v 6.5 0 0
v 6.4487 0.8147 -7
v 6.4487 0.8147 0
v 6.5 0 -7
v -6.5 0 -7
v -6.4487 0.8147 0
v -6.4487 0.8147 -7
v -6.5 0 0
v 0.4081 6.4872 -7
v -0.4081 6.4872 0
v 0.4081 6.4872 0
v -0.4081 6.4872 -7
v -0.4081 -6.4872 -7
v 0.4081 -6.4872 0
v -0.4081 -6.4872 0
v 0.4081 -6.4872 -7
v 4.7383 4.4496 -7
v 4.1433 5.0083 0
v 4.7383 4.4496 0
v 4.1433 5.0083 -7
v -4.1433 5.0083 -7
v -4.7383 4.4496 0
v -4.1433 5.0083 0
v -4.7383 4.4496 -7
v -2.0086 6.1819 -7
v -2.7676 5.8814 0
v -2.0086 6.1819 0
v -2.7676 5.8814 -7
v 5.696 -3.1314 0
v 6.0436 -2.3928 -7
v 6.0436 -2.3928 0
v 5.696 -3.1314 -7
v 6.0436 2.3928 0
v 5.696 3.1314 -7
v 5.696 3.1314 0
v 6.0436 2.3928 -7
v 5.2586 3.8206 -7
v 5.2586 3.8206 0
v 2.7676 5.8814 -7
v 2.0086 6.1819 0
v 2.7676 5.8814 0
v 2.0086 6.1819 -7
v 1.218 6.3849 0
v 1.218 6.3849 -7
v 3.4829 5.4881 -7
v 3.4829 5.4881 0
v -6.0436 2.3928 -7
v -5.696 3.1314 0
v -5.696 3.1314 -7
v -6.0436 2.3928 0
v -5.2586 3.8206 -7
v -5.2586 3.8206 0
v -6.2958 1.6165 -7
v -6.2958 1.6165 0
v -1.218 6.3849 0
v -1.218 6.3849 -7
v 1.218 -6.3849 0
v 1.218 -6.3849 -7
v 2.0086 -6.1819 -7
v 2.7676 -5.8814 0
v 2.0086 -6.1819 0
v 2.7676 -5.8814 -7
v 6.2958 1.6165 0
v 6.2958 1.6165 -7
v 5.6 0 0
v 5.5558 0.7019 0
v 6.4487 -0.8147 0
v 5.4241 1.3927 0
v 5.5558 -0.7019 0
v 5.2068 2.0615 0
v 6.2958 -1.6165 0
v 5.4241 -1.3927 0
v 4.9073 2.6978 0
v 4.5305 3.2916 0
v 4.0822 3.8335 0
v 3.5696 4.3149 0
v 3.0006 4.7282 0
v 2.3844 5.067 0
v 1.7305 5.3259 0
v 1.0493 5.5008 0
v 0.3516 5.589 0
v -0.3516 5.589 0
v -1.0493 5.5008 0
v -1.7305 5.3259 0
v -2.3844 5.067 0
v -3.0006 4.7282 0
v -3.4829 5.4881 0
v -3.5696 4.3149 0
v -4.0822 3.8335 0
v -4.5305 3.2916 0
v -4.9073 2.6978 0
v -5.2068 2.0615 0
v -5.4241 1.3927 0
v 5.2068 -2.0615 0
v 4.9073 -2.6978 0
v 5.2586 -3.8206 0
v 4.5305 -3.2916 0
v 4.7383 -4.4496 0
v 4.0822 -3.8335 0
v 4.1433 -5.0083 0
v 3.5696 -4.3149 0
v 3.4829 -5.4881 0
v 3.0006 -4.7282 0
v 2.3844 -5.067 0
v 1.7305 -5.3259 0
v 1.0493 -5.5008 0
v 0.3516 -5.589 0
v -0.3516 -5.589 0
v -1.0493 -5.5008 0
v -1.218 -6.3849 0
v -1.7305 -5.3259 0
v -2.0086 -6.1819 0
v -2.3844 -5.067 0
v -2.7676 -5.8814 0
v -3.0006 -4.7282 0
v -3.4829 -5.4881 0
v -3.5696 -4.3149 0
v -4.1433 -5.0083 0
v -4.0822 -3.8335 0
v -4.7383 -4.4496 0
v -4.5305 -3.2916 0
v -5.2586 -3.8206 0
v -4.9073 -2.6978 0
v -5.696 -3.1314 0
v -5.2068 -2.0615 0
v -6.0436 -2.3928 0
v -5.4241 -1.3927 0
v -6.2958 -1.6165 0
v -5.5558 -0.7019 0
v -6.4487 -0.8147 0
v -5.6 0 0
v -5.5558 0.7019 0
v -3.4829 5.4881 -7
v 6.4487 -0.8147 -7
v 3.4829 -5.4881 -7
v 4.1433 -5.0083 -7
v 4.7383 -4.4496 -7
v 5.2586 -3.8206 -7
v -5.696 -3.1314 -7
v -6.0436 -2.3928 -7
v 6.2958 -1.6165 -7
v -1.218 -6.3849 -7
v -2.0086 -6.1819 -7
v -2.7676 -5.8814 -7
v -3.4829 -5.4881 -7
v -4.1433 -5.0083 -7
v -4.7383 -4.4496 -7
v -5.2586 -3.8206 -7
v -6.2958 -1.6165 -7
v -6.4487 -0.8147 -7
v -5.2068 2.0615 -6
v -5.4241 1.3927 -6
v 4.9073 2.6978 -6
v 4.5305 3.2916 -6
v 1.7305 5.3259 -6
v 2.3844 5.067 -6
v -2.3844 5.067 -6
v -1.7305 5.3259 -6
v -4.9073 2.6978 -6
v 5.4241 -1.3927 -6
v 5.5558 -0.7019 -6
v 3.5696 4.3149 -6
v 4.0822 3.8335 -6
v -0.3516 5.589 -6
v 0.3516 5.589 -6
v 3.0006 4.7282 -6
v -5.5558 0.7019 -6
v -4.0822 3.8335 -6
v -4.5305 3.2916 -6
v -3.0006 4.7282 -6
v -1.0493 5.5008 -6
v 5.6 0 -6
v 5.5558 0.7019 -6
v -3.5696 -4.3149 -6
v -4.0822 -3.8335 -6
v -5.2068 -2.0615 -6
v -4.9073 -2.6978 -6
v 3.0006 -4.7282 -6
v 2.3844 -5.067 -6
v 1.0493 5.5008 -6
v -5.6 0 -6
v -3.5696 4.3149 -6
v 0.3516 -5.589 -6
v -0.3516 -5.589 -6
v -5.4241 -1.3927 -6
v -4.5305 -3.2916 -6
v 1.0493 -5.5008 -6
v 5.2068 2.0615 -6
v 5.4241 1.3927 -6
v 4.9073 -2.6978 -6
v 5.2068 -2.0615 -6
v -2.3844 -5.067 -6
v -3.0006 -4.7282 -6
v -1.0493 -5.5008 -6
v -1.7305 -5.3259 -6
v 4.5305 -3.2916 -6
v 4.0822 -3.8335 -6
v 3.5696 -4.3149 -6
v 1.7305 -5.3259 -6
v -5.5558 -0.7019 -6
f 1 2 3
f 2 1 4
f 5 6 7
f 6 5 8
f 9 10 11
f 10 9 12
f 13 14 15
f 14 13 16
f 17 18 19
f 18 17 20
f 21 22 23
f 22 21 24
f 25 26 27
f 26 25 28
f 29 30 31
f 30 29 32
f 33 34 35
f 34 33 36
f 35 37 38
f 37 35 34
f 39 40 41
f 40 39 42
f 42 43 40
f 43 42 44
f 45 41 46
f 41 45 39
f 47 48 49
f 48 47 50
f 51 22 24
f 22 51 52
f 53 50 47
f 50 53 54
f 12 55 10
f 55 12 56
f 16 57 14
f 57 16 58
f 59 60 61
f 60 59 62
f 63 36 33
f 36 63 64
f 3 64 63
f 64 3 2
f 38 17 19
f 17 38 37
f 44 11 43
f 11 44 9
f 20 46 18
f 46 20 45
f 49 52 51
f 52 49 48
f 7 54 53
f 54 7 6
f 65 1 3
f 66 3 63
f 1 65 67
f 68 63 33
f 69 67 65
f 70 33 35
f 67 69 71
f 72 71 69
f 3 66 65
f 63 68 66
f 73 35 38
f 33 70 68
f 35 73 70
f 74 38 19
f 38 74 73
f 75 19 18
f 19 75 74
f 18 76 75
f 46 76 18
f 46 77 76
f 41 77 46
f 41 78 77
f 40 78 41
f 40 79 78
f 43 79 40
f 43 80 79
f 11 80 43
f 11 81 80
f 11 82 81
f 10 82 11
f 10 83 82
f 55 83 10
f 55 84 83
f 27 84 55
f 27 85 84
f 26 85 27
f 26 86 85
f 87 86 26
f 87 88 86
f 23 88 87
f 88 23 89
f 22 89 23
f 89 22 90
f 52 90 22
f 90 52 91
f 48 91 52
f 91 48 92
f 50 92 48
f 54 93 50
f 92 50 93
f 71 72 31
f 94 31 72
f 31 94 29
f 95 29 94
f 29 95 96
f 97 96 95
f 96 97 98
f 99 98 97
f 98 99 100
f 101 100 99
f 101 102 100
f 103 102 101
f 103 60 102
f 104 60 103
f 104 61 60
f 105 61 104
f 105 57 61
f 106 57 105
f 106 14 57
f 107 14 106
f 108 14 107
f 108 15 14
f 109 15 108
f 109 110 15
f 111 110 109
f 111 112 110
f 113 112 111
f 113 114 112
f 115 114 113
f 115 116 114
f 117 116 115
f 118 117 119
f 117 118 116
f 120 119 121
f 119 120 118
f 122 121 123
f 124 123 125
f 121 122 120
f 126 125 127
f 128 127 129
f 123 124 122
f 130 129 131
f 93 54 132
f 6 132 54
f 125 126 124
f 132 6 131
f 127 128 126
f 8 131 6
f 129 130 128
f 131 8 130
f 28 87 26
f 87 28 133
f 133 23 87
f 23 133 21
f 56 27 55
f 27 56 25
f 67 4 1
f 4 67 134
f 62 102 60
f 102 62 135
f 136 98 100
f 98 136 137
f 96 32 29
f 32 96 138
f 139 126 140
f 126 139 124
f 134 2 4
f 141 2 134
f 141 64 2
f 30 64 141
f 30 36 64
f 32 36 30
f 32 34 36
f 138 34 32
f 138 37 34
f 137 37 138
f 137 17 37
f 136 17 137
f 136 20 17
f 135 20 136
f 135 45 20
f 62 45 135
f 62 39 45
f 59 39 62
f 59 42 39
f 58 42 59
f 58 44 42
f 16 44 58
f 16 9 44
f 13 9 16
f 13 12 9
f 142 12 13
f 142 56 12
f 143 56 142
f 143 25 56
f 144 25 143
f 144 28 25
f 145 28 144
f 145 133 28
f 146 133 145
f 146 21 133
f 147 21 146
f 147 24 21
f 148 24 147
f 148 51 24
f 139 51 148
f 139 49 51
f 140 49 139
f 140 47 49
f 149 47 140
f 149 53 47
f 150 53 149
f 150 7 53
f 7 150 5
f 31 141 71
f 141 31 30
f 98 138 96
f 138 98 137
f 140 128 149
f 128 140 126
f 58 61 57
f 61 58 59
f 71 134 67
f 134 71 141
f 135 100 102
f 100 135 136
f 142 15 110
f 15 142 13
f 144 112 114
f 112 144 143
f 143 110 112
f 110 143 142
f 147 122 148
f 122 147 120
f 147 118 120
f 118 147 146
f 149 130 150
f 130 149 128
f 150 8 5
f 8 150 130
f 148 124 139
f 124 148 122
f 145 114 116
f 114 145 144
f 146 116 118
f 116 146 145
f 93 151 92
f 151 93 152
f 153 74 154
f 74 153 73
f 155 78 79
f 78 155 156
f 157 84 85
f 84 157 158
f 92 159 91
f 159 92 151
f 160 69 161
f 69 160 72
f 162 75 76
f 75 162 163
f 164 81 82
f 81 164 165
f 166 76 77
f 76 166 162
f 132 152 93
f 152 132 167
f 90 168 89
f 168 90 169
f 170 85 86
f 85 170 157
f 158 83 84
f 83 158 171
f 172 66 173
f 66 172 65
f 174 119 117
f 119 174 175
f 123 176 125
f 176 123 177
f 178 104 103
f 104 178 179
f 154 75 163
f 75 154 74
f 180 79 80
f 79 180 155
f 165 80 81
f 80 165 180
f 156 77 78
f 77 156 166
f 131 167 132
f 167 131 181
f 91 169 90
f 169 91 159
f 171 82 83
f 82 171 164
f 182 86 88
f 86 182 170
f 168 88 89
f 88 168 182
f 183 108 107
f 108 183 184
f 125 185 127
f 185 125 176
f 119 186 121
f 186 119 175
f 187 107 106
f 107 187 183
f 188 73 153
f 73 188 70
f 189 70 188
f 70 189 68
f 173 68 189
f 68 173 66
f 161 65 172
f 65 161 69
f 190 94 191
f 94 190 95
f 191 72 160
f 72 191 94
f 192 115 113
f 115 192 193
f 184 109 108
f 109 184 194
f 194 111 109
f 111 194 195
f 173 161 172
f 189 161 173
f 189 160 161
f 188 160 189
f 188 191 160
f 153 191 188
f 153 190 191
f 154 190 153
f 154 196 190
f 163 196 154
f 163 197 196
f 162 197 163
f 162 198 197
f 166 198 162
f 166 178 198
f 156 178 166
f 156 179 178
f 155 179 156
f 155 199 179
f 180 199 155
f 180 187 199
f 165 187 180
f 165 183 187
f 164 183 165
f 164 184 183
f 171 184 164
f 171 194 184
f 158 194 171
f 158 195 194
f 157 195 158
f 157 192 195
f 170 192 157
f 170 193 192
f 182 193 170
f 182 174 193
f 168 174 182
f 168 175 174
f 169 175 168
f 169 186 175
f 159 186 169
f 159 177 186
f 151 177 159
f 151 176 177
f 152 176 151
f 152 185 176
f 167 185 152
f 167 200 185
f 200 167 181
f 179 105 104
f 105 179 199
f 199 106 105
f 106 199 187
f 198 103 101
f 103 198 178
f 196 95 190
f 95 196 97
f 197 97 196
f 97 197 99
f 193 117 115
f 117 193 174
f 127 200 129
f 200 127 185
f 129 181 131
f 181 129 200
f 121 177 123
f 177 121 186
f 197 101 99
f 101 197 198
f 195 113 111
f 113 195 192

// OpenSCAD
$fn = 50;


difference() {
	union() {
		translate(v = [0, 0, -7.0000000000]) {
			cylinder(h = 7, r = 6.5000000000);
		}
	}
	union() {
		#translate(v = [0, 0, -6.0000000000]) {
			cylinder(h = 6, r = 5.6000000000);
		}
	}
}
